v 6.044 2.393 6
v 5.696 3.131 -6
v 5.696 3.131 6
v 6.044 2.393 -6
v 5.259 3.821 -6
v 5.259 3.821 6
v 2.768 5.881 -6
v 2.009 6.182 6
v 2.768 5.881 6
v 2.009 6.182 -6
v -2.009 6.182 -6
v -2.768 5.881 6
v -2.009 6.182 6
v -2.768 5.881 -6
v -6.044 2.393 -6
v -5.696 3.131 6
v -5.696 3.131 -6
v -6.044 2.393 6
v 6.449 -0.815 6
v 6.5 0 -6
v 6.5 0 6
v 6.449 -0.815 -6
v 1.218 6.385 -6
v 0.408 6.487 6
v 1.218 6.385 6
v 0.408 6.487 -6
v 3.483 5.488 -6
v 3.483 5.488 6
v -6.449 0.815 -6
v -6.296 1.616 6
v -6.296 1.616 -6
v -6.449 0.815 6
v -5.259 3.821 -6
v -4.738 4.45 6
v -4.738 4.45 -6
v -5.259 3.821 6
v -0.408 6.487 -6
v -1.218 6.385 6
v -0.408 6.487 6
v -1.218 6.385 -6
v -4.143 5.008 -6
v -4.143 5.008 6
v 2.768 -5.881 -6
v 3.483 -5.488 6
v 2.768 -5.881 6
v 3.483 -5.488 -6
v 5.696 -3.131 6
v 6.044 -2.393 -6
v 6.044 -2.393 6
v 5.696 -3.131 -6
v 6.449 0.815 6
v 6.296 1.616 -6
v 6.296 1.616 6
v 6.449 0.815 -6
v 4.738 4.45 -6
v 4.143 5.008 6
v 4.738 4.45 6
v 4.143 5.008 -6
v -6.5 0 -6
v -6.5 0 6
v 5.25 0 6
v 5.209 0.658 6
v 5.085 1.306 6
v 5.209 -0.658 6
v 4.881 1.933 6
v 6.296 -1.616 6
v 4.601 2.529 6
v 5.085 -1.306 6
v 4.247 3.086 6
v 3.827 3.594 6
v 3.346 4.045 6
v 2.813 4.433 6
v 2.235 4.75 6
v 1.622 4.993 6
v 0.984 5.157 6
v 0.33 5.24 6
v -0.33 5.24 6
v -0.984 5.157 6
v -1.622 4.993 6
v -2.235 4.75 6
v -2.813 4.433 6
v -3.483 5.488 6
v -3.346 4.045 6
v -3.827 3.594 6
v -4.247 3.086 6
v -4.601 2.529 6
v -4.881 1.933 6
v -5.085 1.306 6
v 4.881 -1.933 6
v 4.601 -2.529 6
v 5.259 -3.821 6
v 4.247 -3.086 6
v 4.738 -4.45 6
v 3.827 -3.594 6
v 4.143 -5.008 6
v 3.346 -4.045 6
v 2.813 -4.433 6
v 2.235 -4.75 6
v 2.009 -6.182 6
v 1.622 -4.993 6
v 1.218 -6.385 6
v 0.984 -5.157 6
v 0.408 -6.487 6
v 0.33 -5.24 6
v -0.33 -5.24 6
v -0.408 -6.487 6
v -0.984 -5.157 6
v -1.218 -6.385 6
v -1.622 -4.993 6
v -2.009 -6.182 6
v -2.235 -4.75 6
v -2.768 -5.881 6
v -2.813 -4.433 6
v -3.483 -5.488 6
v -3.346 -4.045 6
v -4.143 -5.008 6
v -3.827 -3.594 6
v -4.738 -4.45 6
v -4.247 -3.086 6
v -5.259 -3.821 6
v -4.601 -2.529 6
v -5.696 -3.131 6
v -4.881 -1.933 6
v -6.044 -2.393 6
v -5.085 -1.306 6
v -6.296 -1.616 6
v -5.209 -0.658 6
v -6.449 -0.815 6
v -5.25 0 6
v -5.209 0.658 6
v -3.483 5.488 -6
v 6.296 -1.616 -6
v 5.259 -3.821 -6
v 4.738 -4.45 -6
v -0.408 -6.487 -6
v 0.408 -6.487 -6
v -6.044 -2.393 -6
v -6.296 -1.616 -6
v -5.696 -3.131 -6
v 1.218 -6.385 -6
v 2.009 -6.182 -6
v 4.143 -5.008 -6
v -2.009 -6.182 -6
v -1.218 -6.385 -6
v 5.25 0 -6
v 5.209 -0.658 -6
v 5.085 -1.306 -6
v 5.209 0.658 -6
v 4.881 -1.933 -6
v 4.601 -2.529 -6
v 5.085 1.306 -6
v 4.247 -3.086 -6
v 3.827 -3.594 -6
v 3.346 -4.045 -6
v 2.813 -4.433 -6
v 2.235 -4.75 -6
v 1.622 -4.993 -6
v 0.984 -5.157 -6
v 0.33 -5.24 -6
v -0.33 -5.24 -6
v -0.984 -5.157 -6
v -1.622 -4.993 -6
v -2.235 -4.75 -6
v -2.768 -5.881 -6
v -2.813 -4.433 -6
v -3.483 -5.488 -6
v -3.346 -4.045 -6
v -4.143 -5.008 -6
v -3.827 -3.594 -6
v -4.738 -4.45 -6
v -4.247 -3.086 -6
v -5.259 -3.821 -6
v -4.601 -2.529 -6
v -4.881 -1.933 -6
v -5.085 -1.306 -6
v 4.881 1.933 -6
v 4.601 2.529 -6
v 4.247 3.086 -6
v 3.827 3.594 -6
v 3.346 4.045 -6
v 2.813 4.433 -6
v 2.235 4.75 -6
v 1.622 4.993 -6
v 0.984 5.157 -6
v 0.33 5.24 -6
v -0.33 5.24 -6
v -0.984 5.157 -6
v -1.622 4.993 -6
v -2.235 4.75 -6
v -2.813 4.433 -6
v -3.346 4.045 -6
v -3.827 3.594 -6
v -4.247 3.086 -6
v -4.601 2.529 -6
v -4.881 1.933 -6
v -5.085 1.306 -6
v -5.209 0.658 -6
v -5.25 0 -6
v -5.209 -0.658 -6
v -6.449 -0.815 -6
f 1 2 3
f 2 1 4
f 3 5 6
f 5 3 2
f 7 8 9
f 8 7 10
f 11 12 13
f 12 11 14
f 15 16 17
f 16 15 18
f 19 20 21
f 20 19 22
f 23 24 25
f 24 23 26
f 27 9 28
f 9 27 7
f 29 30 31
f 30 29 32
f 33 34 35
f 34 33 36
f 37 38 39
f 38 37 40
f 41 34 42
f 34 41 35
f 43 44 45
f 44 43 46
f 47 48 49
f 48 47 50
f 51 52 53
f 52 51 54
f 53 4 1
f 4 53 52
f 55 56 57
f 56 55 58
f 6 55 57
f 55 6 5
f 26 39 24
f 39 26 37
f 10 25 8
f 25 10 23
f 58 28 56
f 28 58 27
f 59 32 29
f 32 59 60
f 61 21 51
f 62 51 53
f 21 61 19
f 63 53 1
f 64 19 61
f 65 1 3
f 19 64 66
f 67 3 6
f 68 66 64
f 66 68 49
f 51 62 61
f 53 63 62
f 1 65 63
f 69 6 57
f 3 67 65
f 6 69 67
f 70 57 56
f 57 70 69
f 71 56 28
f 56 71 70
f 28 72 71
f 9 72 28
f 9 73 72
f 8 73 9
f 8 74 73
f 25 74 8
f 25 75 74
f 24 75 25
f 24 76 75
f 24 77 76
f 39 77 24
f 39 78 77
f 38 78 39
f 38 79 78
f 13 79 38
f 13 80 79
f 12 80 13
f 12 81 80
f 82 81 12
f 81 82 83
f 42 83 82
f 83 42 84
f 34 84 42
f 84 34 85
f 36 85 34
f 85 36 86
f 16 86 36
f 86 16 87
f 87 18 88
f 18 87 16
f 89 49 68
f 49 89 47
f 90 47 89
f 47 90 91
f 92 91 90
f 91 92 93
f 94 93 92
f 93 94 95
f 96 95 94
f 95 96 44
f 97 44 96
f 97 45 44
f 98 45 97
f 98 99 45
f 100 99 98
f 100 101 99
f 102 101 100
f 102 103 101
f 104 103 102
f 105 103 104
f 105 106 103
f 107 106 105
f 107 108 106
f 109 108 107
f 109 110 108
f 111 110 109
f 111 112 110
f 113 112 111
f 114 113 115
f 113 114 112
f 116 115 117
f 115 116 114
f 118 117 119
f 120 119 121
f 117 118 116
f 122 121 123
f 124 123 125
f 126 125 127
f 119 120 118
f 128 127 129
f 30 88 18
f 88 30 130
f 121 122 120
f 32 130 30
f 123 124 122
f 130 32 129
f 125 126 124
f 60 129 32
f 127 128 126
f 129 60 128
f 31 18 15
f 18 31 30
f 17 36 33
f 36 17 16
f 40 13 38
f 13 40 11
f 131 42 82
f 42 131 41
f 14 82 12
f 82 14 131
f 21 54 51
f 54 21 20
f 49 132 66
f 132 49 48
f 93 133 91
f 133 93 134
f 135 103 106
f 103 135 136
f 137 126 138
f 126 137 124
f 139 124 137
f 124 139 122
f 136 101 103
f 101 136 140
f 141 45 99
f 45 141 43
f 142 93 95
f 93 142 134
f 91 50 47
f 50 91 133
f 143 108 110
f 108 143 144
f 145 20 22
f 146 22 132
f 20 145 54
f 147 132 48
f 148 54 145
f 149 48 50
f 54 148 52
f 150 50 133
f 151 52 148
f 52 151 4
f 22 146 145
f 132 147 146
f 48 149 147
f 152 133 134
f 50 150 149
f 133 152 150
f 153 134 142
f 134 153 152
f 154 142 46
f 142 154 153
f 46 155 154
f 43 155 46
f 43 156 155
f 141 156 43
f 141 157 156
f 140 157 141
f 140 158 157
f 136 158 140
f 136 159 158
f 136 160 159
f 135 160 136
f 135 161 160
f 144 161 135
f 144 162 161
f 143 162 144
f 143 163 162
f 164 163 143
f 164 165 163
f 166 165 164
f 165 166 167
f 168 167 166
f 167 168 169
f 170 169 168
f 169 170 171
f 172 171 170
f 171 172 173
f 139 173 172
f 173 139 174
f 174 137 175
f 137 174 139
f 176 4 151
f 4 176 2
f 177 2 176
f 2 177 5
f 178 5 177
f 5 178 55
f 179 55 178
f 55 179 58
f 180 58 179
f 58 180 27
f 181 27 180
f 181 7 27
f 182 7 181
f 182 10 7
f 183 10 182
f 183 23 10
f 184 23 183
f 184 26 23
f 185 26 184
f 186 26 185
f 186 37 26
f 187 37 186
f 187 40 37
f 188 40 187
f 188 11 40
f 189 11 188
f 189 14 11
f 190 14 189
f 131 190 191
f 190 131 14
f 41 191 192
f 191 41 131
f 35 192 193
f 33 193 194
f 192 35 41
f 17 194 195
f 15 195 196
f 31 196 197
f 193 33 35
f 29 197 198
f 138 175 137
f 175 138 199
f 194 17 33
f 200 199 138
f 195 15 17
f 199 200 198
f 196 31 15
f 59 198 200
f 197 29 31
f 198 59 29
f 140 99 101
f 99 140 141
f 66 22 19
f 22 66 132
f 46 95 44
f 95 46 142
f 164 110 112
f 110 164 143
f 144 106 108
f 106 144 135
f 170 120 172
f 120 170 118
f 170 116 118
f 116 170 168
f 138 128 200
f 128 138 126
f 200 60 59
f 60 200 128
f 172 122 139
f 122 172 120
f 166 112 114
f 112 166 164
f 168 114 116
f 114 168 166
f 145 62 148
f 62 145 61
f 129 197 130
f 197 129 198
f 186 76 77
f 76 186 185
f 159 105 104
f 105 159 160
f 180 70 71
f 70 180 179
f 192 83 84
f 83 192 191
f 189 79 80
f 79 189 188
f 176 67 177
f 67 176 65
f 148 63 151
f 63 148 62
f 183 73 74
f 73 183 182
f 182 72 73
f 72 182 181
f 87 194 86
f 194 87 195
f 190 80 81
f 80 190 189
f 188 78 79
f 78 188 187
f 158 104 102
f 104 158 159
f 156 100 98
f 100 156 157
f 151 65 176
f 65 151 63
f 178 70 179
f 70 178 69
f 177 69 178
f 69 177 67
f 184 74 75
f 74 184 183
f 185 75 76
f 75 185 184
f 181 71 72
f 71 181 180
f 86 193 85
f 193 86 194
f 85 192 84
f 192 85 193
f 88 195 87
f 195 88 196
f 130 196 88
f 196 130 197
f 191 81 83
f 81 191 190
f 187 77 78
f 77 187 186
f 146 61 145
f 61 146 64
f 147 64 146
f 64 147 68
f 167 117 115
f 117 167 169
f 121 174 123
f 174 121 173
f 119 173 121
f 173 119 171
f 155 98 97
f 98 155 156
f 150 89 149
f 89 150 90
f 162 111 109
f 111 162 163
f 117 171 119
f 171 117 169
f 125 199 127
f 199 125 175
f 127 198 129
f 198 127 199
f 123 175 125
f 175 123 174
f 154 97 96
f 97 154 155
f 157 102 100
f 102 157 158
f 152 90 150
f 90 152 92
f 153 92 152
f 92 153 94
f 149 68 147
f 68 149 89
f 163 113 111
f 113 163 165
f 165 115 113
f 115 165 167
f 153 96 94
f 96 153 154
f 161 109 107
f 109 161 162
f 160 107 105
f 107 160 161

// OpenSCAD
$fn = 50;


difference() {
	union() {
		translate(v = [0, 0, -6.0000000000]) {
			cylinder(h = 12, r = 6.5000000000);
		}
	}
	union() {
		translate(v = [0, 0, -100.0000000000]) {
			cylinder(h = 200, r = 5.2500000000);
		}
	}
}
